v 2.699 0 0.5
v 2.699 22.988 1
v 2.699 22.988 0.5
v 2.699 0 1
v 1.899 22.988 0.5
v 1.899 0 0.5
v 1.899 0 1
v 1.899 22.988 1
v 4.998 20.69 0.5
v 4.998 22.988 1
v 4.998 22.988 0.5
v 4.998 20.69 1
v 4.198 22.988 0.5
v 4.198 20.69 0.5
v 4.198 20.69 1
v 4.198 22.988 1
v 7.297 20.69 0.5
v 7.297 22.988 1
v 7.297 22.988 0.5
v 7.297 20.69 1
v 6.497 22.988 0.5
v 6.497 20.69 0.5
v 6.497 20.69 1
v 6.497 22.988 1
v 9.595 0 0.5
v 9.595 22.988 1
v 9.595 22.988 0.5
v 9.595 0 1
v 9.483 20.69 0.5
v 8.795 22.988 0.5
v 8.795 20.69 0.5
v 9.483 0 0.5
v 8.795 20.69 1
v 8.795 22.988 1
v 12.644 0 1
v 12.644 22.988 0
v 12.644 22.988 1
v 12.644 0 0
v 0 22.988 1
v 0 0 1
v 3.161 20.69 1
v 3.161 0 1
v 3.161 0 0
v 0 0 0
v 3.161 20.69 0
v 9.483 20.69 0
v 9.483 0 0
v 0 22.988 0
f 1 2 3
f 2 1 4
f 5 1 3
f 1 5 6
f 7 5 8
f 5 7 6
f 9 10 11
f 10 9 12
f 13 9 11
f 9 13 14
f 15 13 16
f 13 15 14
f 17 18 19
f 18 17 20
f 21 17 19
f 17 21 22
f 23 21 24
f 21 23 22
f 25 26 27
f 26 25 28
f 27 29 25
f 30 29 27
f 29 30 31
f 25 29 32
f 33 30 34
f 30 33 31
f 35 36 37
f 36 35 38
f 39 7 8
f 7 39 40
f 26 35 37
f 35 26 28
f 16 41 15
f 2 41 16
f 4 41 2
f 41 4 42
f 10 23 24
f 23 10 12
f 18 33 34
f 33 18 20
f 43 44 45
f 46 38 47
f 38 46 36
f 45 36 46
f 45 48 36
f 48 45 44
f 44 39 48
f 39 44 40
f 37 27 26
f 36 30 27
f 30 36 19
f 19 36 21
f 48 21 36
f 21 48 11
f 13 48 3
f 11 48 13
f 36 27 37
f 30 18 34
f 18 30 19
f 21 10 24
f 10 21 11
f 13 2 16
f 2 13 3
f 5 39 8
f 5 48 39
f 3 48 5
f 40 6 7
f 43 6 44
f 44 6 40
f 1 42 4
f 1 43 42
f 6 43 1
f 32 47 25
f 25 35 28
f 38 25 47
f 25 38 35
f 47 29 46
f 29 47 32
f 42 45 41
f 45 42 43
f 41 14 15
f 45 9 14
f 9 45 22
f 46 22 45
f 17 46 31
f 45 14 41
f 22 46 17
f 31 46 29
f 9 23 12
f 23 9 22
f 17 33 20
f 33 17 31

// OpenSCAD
/*
 * PROMPT: Front wall panel of the Polish outdoor toilet (sławojka) in H0 scale (1:87).
 * Centred door opening from floor to door height, vertical plank grooves on exterior
 * face. Flat 1 mm panel, exterior face up.
 */

$fn = 32;
S = 1/87;
panel_t = 1.0;

bld_w_real    = 1100;
bld_h_real    = 2000;
door_w_real   = 550;
door_h_real   = 1800;
plank_period  = 200 * S;
groove_w      = 0.8;
groove_d      = 0.5;

bld_w  = bld_w_real * S;
bld_h  = bld_h_real * S;
door_w = door_w_real * S;
door_h = door_h_real * S;

module wall_front() {
    difference() {
        cube([bld_w, bld_h, panel_t]);

        // door opening, centred, from floor
        translate([(bld_w - door_w)/2, 0, -1])
            cube([door_w, door_h, panel_t+2]);

        // vertical plank grooves on exterior face
        for (i = [1 : floor(bld_w / plank_period) - 1]) {
            gx = i * plank_period - groove_w/2;
            translate([gx, -1, panel_t - groove_d])
                cube([groove_w, bld_h+2, groove_d+1]);
        }
    }
}

wall_front();
